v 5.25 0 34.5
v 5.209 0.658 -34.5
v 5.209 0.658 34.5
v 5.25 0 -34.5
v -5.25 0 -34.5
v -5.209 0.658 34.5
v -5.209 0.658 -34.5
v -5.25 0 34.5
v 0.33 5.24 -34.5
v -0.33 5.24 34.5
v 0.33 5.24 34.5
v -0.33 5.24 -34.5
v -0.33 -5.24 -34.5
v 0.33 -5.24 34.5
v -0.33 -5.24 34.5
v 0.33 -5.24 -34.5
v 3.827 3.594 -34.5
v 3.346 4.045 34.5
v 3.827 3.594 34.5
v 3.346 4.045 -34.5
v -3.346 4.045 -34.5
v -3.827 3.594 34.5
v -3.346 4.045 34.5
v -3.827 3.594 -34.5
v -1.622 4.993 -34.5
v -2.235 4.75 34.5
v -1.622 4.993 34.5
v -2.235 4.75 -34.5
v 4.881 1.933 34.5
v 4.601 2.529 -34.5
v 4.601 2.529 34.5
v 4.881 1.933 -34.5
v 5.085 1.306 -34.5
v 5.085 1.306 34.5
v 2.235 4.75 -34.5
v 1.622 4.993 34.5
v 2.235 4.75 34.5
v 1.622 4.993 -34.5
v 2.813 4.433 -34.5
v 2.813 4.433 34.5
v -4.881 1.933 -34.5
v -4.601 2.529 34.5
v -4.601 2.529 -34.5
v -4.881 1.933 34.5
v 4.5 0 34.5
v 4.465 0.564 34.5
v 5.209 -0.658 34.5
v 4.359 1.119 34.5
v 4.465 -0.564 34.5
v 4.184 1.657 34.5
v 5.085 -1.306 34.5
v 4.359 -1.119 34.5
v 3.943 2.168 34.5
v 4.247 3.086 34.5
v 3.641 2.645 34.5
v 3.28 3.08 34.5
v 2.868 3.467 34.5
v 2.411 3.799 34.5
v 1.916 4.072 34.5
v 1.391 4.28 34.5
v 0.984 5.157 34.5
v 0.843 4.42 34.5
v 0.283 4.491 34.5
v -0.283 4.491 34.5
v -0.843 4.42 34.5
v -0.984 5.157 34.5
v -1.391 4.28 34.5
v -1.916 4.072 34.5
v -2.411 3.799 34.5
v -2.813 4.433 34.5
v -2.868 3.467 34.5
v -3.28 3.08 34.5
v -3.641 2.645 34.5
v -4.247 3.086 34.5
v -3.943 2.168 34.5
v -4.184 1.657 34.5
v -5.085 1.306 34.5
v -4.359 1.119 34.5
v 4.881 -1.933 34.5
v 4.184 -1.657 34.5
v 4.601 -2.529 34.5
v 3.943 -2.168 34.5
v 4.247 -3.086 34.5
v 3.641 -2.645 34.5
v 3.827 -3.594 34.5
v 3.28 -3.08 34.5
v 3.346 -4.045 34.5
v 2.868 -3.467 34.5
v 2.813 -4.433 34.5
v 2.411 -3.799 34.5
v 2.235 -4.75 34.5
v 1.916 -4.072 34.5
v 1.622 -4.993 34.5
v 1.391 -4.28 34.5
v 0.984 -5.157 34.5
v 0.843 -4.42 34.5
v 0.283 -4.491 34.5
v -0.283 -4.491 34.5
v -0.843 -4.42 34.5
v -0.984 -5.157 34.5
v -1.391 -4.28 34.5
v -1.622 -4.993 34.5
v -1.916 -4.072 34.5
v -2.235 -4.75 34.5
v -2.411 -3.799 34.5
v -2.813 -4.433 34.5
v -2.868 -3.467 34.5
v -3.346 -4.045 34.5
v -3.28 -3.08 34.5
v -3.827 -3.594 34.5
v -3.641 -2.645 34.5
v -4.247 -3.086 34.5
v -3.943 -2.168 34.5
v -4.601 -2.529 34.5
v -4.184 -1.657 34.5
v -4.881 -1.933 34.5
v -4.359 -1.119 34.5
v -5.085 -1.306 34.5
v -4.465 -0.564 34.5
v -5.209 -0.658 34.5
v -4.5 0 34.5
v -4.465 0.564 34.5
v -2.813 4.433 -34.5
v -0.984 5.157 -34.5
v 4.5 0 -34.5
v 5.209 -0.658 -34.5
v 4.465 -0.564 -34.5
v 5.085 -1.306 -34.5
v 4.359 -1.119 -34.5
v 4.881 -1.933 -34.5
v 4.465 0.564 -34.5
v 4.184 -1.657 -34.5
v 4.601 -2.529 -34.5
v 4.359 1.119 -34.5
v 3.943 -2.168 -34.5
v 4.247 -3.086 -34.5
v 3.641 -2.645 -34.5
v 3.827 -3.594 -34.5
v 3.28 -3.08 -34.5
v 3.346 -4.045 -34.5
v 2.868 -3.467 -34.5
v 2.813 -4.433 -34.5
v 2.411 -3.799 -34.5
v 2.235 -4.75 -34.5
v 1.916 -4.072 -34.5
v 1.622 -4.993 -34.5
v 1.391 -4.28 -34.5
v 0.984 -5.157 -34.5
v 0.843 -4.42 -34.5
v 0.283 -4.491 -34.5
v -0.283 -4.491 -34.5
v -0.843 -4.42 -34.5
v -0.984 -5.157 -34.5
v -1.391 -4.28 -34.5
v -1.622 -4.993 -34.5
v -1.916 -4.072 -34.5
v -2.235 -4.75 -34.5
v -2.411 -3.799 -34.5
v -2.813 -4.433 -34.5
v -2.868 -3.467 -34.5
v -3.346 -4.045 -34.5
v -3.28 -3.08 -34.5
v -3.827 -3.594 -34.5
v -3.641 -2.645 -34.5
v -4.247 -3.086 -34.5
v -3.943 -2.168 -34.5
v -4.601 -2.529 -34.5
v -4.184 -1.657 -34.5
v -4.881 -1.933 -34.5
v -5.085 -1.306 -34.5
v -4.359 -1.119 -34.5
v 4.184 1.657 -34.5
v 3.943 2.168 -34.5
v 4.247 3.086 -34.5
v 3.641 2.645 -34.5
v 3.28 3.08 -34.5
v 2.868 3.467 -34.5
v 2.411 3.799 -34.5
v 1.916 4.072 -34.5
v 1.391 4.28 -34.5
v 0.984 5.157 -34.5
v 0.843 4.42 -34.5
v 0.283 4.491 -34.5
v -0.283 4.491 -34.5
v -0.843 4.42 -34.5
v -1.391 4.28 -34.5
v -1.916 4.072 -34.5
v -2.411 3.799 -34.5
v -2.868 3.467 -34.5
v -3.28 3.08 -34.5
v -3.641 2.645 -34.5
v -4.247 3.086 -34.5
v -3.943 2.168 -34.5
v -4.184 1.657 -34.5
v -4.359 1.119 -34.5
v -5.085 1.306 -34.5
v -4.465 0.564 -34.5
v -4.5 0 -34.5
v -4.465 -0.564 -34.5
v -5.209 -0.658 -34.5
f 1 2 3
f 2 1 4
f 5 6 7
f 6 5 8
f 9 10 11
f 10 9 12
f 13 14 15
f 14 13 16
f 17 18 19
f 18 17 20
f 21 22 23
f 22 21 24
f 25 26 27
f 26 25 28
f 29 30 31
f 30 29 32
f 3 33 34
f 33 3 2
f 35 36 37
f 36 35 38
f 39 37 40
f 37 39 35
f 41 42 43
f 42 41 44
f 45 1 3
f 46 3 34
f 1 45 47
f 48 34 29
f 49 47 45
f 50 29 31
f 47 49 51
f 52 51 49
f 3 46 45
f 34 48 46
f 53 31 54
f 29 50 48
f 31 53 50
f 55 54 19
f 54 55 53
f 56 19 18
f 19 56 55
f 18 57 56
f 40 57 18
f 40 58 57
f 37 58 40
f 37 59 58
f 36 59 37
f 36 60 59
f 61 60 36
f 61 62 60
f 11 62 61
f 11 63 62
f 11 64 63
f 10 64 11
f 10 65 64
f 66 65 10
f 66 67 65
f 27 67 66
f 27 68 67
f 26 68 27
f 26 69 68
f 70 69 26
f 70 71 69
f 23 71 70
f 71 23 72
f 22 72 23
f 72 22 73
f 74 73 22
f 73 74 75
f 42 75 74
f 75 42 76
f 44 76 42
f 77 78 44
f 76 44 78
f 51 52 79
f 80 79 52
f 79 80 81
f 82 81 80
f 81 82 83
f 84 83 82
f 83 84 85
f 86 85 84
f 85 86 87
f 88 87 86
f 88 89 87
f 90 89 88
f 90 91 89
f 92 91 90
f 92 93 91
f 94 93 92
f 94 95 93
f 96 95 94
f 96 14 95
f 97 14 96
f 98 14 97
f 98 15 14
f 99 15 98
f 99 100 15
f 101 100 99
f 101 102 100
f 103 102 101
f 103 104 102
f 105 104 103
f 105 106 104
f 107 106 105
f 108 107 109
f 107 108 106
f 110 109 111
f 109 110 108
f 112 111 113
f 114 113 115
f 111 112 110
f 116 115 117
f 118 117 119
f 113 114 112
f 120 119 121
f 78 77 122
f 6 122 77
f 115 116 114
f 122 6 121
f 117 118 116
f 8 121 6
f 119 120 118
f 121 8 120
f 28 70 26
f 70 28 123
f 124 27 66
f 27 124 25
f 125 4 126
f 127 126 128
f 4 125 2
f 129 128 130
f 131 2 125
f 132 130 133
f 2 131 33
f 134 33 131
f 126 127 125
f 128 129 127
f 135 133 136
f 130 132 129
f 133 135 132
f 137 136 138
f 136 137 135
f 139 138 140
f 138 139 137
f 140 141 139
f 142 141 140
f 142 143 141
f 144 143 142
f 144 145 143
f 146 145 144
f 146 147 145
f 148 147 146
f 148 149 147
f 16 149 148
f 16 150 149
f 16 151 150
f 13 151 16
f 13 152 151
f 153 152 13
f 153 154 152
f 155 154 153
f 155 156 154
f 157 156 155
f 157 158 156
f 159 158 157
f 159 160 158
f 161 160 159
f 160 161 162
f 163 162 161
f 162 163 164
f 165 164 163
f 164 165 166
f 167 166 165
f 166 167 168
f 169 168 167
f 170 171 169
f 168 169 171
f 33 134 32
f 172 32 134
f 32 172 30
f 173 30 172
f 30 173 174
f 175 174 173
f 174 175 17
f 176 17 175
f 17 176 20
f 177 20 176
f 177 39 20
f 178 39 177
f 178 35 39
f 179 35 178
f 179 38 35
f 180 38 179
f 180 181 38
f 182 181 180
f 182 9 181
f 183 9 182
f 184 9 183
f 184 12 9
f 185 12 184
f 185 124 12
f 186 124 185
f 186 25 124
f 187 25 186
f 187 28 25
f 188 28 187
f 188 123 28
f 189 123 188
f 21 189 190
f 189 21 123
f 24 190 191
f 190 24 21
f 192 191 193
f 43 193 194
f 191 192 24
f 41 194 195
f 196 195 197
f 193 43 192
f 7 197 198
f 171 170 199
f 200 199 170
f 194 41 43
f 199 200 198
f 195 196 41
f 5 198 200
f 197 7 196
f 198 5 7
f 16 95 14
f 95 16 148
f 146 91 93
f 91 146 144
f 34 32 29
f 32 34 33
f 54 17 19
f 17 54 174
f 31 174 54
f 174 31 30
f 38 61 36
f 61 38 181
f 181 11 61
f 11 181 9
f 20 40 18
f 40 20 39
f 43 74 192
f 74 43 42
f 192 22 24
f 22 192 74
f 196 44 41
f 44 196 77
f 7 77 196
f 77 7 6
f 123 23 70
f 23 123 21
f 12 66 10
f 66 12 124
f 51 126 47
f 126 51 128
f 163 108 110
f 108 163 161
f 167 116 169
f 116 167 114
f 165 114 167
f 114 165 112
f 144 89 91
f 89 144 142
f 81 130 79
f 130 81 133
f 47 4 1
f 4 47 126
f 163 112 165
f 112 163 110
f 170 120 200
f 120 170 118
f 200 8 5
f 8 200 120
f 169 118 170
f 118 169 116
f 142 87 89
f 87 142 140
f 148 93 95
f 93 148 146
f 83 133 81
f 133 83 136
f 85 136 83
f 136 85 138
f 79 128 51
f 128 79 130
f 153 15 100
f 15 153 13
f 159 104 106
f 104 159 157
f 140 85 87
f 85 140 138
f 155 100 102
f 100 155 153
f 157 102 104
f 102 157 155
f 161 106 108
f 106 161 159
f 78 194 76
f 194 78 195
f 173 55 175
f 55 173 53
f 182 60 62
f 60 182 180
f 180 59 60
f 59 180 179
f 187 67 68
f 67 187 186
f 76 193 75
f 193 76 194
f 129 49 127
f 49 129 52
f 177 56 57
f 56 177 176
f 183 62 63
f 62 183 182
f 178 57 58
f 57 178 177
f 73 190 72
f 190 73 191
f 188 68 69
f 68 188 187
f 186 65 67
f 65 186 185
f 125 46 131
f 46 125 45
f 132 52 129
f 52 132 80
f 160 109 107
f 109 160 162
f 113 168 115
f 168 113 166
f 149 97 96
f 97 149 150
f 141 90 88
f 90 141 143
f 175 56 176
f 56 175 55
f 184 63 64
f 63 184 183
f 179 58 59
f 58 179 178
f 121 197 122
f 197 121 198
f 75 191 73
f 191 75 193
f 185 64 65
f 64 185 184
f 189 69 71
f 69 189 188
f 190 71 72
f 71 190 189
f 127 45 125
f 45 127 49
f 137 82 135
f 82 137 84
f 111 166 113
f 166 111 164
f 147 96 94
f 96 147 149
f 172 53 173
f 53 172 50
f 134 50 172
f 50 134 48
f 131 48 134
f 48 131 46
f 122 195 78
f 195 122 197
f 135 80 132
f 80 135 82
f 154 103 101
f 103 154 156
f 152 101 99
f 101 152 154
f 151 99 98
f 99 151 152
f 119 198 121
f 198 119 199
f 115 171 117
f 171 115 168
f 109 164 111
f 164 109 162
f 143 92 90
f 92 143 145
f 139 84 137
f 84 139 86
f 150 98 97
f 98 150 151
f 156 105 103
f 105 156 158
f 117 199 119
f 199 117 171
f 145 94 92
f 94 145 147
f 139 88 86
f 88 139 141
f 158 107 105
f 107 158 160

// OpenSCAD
$fn = 50;


difference() {
	union() {
		translate(v = [0, 0, -34.5000000000]) {
			cylinder(h = 69, r = 5.2500000000);
		}
	}
	union() {
		translate(v = [0, 0, -100.0000000000]) {
			cylinder(h = 200, r = 4.5000000000);
		}
	}
}
